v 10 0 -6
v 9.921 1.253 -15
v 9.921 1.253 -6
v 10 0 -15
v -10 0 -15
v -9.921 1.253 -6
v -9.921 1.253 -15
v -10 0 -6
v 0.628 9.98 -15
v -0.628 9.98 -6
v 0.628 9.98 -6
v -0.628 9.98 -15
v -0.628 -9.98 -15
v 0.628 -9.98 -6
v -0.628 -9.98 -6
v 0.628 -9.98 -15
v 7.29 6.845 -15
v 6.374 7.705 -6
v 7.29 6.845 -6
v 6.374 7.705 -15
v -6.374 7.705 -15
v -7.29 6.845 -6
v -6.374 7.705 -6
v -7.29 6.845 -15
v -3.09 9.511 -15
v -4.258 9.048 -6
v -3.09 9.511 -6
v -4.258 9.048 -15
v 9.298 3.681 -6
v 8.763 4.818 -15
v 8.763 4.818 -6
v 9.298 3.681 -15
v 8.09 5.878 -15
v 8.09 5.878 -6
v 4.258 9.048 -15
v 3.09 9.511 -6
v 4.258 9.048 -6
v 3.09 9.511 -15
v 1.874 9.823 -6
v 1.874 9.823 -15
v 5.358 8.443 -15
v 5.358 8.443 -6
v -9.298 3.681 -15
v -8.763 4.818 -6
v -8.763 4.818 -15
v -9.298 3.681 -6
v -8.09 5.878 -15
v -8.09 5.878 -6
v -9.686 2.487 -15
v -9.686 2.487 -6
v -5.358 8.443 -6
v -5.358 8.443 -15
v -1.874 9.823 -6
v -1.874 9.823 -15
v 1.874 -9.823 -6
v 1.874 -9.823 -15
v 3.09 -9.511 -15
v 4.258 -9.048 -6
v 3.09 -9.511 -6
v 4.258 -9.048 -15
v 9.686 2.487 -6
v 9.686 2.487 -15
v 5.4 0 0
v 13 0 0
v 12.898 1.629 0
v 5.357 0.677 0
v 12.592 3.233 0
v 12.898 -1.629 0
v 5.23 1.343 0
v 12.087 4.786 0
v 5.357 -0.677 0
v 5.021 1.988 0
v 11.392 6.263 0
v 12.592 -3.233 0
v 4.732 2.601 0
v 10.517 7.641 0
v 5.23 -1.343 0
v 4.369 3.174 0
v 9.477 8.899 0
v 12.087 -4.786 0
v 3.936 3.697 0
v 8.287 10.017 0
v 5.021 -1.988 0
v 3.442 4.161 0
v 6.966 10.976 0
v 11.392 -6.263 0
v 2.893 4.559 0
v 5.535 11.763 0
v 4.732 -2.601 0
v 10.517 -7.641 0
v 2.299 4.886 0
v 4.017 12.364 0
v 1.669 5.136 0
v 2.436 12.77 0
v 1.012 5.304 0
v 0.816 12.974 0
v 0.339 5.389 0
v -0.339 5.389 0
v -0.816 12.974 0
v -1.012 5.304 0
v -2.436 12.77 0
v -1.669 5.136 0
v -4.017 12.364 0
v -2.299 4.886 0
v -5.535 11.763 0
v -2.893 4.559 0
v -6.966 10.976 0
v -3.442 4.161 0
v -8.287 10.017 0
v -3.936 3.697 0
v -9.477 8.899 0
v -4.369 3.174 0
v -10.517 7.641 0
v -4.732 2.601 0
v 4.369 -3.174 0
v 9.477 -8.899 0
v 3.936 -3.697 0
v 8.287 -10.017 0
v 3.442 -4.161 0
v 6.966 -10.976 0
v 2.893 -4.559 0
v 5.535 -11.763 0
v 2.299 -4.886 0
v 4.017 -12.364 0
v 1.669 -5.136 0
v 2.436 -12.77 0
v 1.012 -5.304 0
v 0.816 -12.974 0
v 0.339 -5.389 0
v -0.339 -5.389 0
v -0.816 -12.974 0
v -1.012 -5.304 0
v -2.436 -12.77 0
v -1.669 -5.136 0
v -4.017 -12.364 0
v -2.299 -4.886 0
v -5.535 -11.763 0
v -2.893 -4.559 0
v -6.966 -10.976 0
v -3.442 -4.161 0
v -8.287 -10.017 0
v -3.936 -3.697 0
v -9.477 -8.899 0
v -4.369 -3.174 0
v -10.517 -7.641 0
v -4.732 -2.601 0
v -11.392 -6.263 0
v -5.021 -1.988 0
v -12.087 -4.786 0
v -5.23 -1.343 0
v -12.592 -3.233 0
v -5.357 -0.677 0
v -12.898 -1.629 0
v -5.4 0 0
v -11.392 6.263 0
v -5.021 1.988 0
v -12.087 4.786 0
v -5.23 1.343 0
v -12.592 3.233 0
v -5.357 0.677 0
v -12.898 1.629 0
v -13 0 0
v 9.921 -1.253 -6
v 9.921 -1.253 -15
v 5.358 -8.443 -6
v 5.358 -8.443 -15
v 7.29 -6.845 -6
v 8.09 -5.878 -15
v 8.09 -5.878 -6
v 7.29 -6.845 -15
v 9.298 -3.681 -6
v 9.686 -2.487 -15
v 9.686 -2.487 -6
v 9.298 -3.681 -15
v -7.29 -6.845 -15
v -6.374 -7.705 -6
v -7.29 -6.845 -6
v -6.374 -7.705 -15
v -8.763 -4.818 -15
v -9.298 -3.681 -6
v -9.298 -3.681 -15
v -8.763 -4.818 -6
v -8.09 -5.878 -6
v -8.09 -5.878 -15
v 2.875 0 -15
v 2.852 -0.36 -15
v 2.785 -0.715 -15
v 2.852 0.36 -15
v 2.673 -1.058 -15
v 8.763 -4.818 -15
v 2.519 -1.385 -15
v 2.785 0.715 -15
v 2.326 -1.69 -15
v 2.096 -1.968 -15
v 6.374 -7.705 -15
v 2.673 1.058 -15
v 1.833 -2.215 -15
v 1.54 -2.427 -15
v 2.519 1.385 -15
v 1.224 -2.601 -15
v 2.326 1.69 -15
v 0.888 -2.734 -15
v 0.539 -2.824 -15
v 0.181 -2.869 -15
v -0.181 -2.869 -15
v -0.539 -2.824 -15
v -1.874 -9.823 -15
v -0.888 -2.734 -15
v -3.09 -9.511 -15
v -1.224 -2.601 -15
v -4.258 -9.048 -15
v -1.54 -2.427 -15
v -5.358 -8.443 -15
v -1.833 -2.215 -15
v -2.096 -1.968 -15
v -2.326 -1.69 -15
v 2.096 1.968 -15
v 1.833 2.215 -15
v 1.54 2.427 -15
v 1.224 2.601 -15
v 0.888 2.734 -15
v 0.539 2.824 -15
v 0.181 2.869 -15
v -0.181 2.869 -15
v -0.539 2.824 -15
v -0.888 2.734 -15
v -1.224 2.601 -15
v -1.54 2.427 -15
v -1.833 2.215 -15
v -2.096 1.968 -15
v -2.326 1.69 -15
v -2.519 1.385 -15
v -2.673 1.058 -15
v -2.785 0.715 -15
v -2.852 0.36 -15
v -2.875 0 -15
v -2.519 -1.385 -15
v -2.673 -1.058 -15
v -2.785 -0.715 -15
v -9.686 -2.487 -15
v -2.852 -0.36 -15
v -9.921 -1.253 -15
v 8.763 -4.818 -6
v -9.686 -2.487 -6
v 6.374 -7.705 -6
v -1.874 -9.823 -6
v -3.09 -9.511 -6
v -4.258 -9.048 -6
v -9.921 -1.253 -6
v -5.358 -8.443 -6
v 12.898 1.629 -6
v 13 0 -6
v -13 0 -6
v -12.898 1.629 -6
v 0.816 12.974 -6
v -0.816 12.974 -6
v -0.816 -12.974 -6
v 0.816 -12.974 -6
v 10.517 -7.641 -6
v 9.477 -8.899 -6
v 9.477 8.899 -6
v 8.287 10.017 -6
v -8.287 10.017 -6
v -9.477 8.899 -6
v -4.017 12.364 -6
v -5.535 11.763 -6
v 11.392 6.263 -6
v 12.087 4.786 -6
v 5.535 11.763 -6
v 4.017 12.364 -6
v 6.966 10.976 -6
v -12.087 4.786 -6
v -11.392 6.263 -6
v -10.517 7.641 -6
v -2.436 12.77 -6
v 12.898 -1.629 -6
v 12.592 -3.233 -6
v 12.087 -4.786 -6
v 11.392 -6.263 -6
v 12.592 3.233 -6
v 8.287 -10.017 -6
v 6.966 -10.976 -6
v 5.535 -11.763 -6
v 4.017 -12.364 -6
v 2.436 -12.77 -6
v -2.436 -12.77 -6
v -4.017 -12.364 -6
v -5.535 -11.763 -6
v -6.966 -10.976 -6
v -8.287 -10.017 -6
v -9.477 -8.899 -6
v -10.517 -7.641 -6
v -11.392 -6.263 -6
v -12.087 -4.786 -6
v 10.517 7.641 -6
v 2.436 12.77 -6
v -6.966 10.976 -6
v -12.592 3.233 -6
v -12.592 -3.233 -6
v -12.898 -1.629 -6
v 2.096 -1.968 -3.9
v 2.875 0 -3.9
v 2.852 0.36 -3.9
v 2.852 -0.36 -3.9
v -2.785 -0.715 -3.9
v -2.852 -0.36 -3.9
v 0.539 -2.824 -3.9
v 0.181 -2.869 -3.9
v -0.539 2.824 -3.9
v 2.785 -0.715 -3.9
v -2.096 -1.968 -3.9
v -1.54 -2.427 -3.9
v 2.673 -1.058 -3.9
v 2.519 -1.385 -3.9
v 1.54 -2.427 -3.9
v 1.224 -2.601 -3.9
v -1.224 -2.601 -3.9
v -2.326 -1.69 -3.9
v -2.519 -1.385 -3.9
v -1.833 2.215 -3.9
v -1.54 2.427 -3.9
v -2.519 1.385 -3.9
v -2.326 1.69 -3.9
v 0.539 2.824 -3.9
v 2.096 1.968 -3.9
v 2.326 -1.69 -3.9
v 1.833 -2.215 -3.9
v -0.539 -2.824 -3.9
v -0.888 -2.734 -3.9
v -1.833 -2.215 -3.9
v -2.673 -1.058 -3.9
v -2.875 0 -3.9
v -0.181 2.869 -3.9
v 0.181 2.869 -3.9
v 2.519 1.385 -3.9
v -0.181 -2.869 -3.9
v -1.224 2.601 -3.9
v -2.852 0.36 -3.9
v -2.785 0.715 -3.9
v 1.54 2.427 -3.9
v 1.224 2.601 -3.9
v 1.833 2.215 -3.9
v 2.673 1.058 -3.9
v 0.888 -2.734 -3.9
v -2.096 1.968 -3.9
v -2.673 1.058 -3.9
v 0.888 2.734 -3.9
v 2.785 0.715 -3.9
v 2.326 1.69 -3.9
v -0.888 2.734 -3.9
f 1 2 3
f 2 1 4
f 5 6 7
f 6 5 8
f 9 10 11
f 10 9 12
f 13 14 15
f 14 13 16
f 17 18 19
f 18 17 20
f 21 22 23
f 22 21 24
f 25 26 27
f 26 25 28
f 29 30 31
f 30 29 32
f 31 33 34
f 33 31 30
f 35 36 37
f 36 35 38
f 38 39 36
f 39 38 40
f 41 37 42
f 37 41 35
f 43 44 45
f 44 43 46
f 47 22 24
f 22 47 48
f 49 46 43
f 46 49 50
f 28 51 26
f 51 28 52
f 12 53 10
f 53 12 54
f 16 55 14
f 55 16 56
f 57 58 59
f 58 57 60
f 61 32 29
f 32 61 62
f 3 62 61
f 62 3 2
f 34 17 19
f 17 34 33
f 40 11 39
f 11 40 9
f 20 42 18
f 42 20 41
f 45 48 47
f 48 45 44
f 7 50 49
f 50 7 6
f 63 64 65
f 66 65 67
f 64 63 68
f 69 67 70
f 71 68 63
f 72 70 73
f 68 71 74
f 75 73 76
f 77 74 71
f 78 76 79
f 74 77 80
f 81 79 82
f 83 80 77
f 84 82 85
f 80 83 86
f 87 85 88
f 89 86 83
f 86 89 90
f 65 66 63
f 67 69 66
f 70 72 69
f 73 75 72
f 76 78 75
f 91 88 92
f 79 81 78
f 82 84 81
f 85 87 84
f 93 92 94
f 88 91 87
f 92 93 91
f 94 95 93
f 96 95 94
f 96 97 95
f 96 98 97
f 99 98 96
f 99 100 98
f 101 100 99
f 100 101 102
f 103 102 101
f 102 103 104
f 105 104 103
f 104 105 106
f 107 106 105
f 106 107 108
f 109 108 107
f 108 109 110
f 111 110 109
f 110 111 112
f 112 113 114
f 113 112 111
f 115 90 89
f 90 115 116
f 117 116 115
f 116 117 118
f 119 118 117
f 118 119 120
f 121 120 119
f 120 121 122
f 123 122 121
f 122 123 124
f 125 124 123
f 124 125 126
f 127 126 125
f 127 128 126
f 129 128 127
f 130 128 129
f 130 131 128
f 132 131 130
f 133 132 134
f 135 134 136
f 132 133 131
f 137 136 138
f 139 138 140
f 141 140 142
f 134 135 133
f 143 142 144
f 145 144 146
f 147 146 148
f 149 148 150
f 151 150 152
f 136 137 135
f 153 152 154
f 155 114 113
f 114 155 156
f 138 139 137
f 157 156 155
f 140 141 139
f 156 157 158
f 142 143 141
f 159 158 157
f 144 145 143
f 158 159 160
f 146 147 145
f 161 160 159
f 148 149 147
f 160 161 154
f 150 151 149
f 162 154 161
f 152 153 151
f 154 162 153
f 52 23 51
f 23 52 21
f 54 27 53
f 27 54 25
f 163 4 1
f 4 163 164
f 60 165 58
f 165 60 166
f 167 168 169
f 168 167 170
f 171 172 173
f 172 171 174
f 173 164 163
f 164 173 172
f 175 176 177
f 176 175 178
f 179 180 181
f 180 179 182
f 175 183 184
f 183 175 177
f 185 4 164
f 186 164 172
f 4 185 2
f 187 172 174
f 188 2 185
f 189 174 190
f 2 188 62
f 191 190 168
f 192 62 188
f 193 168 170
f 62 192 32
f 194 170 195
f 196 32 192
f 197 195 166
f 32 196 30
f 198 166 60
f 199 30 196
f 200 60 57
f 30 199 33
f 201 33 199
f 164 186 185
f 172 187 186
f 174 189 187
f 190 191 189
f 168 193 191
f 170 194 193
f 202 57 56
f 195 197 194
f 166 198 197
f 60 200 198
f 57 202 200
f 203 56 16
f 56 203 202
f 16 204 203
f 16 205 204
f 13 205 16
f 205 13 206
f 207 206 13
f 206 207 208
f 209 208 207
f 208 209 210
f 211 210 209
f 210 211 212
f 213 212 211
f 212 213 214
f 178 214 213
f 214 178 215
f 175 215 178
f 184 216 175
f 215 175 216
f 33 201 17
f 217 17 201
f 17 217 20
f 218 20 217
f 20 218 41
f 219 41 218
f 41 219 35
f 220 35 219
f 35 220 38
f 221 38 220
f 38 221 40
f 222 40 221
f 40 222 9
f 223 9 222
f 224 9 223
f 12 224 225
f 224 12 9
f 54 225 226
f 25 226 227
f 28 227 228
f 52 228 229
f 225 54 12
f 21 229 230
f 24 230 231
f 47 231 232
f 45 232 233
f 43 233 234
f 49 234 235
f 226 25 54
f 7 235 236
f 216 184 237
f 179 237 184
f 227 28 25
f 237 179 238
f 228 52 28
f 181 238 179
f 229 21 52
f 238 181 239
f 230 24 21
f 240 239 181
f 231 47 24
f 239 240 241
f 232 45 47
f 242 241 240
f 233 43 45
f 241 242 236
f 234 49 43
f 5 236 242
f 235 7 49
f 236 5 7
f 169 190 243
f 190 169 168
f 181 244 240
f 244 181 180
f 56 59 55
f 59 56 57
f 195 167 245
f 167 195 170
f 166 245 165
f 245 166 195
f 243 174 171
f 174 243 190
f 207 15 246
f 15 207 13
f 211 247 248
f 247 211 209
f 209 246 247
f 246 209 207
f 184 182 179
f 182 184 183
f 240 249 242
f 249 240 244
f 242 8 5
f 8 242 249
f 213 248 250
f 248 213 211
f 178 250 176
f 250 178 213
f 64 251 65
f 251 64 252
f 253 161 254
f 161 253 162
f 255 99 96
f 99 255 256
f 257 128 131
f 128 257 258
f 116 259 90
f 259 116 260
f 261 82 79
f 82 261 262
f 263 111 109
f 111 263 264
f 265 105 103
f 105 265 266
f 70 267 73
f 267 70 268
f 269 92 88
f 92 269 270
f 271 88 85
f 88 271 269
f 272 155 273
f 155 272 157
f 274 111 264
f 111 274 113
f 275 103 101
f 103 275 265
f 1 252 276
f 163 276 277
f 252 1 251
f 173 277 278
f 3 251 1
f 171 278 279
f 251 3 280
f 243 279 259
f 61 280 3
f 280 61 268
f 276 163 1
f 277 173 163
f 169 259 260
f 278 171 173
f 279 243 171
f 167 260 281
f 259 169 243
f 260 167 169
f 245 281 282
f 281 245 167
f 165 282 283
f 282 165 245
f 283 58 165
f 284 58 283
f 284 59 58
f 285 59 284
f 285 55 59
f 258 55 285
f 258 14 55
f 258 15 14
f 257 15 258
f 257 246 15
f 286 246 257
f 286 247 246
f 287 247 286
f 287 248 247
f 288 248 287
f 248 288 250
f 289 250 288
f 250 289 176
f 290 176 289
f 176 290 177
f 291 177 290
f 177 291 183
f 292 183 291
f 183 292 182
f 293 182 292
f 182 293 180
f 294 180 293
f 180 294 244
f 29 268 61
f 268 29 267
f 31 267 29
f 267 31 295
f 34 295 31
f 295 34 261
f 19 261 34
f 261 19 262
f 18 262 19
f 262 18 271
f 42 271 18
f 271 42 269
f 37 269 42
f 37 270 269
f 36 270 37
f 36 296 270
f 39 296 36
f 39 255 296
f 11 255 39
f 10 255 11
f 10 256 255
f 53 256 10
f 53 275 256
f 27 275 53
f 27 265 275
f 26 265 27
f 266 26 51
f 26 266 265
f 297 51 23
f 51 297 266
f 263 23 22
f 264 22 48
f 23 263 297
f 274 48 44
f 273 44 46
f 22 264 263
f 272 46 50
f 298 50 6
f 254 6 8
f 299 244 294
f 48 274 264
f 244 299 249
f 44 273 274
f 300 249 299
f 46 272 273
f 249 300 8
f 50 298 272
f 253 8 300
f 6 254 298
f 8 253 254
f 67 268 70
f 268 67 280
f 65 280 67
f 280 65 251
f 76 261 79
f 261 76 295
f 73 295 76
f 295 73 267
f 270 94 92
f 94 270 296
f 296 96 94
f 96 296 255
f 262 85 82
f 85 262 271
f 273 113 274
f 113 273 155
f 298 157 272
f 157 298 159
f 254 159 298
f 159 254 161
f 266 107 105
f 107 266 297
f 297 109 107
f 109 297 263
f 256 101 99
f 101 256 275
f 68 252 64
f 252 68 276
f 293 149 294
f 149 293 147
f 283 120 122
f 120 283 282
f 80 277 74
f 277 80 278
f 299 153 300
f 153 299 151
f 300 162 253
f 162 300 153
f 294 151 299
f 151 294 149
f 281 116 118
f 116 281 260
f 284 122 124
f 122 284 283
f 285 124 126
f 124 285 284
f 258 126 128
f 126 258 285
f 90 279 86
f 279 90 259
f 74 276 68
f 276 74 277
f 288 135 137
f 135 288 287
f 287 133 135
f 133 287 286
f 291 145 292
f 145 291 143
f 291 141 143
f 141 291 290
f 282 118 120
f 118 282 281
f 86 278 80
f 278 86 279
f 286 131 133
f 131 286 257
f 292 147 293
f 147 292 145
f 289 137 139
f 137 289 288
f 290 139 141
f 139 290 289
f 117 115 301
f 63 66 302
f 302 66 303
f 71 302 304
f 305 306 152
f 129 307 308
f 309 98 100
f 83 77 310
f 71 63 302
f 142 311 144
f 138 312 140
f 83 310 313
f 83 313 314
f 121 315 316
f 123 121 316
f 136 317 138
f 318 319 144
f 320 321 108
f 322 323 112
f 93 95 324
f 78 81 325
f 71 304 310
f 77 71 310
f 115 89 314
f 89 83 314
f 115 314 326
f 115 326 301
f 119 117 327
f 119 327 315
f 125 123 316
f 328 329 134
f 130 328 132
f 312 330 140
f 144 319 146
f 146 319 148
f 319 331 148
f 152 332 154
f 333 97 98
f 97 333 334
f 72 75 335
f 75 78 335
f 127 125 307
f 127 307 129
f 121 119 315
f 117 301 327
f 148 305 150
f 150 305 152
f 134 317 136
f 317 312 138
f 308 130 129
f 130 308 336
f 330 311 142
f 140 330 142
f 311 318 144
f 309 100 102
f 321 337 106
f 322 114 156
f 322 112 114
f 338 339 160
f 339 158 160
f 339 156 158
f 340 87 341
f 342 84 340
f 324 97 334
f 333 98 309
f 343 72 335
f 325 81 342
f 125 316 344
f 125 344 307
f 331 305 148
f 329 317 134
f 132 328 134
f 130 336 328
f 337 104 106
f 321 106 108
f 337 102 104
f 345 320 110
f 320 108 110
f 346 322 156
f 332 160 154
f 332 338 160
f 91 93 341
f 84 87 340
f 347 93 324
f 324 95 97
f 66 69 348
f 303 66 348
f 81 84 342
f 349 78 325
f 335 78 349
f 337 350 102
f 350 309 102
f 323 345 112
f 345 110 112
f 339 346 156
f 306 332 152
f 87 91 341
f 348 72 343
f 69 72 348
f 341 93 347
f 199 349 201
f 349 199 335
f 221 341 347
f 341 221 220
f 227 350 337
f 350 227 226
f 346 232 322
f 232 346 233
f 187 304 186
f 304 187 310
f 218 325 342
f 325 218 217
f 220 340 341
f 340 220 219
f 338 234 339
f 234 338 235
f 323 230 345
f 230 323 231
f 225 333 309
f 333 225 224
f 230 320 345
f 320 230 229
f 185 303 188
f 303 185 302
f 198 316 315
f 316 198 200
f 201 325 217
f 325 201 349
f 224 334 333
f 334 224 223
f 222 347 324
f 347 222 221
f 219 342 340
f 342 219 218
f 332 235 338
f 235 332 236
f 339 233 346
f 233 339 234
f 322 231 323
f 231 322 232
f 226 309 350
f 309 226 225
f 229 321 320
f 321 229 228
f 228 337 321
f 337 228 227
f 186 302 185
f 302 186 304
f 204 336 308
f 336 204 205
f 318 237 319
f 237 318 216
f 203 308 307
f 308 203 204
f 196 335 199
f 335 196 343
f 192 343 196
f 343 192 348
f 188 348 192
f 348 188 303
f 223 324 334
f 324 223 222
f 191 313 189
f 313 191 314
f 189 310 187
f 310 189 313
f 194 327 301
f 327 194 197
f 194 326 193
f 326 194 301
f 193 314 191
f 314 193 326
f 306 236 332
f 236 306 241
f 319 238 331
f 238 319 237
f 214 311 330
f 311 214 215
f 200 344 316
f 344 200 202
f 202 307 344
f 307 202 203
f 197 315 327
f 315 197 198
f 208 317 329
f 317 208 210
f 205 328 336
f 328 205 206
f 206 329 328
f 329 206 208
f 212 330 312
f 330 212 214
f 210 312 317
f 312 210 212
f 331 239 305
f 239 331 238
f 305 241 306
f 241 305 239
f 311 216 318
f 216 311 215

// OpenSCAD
$fn = 50;


difference() {
	union() {
		translate(v = [0, 0, -15.0000000000]) {
			cylinder(h = 15, r = 10.0000000000);
		}
		translate(v = [0, 0, -6.0000000000]) {
			cylinder(h = 6, r = 13.0000000000);
		}
	}
	union() {
		translate(v = [0, 0, 0]) {
			rotate(a = [0, 0, 0]) {
				difference() {
					union() {
						#translate(v = [0, 0, -15.0000000000]) {
							cylinder(h = 15, r = 2.6000000000);
						}
						#translate(v = [0, 0, -3.9000000000]) {
							cylinder(h = 3.9000000000, r1 = 2.8750000000, r2 = 5.4000000000);
						}
						#translate(v = [0, 0, -15.0000000000]) {
							cylinder(h = 15, r = 2.8750000000);
						}
						#translate(v = [0, 0, -15.0000000000]) {
							cylinder(h = 15, r = 2.6000000000);
						}
					}
					union();
				}
			}
		}
	}
}
